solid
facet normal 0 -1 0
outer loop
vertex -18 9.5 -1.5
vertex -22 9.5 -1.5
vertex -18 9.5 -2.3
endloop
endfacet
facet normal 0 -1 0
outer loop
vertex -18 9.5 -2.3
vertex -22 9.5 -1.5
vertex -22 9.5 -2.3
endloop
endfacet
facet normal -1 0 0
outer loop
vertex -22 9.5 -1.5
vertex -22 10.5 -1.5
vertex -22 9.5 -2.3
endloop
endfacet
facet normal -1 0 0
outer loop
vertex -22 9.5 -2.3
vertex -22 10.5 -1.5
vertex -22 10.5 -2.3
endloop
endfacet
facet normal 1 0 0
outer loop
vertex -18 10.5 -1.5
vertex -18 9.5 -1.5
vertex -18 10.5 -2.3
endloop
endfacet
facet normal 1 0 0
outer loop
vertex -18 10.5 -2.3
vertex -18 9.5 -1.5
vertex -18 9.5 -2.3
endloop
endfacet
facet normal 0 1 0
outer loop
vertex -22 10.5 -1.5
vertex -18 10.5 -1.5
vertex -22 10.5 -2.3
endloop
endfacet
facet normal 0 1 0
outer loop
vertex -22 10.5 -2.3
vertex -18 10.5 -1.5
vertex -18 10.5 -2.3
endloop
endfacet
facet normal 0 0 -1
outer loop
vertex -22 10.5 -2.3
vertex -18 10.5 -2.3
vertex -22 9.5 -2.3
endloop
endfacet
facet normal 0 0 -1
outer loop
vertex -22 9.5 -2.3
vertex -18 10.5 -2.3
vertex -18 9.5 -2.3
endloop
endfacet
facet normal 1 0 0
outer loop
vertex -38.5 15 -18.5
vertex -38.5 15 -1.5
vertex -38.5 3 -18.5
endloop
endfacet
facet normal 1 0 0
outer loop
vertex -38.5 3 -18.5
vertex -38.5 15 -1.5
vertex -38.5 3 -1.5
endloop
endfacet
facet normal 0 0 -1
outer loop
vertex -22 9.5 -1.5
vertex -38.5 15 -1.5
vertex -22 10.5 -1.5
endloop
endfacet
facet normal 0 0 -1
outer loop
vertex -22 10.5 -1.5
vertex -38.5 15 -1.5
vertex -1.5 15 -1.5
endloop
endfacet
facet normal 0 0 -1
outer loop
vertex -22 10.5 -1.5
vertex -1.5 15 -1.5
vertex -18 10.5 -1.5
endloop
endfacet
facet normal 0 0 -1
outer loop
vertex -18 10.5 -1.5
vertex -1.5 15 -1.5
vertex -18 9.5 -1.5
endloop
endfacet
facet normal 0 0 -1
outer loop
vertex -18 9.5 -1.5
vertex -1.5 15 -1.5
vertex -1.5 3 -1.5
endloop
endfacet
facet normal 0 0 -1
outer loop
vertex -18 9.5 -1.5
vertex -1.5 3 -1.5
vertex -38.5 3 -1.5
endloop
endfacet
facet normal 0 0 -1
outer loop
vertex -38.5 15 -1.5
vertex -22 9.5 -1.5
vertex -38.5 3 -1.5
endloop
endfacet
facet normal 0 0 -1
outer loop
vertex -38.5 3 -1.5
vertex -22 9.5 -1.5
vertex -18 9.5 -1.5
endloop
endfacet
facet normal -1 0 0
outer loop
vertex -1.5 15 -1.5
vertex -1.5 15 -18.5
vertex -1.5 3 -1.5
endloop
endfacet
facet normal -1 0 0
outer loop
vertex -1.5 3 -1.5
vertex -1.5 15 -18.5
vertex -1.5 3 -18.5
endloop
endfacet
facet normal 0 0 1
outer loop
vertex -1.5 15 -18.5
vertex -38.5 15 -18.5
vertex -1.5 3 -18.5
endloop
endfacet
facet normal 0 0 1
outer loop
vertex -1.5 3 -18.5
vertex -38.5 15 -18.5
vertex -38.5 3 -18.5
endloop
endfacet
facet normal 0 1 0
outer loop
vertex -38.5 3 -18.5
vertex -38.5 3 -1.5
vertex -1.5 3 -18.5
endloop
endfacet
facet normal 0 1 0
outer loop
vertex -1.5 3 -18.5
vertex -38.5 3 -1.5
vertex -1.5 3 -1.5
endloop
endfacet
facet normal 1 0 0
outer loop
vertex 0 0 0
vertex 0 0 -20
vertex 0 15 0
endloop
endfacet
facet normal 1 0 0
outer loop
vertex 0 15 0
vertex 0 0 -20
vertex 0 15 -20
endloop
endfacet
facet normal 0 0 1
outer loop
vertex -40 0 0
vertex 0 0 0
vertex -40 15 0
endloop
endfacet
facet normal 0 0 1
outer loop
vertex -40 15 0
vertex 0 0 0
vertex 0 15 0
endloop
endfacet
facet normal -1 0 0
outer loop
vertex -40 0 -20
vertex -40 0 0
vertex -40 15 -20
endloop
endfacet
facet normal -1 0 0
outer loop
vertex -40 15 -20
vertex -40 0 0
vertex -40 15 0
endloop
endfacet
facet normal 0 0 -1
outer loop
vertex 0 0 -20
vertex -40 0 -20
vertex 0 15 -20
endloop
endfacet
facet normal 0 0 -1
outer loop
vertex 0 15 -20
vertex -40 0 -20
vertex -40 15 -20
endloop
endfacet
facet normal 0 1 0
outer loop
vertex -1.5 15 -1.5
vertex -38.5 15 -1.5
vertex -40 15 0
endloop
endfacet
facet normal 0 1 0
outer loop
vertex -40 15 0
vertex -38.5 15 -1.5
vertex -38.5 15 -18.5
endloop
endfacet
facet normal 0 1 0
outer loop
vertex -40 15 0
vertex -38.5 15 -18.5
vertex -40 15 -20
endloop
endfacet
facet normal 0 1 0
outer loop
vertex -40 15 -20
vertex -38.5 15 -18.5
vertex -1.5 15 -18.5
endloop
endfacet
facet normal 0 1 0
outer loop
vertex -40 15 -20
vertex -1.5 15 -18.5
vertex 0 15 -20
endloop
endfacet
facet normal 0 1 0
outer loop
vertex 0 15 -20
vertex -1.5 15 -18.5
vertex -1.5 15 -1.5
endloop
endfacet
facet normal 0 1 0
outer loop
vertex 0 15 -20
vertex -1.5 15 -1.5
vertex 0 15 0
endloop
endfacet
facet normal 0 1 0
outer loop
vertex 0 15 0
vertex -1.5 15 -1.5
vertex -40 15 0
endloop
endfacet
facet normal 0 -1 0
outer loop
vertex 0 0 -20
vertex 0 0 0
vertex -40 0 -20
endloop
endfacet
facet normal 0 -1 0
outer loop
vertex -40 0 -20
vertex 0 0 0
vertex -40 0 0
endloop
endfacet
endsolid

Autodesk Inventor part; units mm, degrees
ref_plane "YZ Plane" through (0, 0, 0) normal (1, 0, 0) x (0, 1, 0)
ref_plane "XZ Plane" through (0, 0, 0) normal (0, 1, 0) x (-1, 0, 0)
ref_plane "XY Plane" through (0, 0, 0) normal (0, 0, 1) x (1, 0, 0)
sketch "Szkic1" plane through (0, 0, 0) normal (0, 1, 0) x (-1, 0, 0)
  line L0 (0, 0) -> (40, 0)
  line L1 (40, 0) -> (40, -20)
  line L2 (40, -20) -> (0, -20)
  line L3 (0, -20) -> (0, 0)
  dimension "d0" = 40
  dimension "d1" = 20
extrude "Wyciągnięcie proste1" add sketch "Szkic1" along normal blind 15
sketch "Szkic2" plane through (0, 15, 0) normal (0, 1, 0) x (1, 0, 0)
  line L0 (-40, 0) -> (0, 0) construction
  line L1 (0, 0) -> (0, 1.5) construction
  line L2 (0, 0) -> (0, 20) construction
  line L3 (0, 1.5) -> (-1.5, 1.5) construction
  line L4 (-1.5, 1.5) -> (-38.5, 1.5)
  line L5 (-38.5, 1.5) -> (-38.5, 18.5)
  line L6 (-38.5, 18.5) -> (-1.5, 18.5)
  line L7 (-1.5, 18.5) -> (-1.5, 1.5)
  dimension "d4" = 1.5
  dimension "d5" = 1.5
  dimension "d6" = 37
  dimension "d7" = 17
extrude "Wyciągnięcie proste2" cut sketch "Szkic2" against normal blind 12
sketch "Szkic3" plane through (-40, 0, 0) normal (0, 0, 1) x (1, 0, 0)
  line L0 (1.5, 3) -> (38.5, 3) projected
  line L1 (38.5, 15) -> (38.5, 3) projected
  line L2 (1.5, 3) -> (38.5, 3)
  line L3 (38.5, 3) -> (38.5, 15)
  line L4 (1.5, 15) -> (1.5, 3)
  line L5 (1.5, 15) -> (1.5, 3) construction
  line L6 (38.5, 15) -> (20, 15)
  line L7 (0, 15) -> (40, 15) projected
  line L8 (20, 15) -> (20, 10)
  line L9 (18, 9.5) -> (22, 9.5)
  line L10 (22, 9.5) -> (22, 10.5)
  line L11 (22, 10.5) -> (18, 10.5)
  line L12 (18, 10.5) -> (18, 9.5)
  line L13 (18, 9.5) -> (22, 10.5) construction
  line L14 (22, 9.5) -> (18, 10.5) construction
  point P0 (40, 0)
  dimension "d13" = 5
  dimension "d14" = 4
  dimension "d15" = 1
extrude "Wyciągnięcie proste3" add sketch "Szkic3" against normal blind 2.3 contours L11 L10 L9 L12
equation "\"d6\" = d0 - 2 * d5"
equation "\"d7\" = d1 - 2 * d5"
properties part number "obudowa_latarka_gora"
